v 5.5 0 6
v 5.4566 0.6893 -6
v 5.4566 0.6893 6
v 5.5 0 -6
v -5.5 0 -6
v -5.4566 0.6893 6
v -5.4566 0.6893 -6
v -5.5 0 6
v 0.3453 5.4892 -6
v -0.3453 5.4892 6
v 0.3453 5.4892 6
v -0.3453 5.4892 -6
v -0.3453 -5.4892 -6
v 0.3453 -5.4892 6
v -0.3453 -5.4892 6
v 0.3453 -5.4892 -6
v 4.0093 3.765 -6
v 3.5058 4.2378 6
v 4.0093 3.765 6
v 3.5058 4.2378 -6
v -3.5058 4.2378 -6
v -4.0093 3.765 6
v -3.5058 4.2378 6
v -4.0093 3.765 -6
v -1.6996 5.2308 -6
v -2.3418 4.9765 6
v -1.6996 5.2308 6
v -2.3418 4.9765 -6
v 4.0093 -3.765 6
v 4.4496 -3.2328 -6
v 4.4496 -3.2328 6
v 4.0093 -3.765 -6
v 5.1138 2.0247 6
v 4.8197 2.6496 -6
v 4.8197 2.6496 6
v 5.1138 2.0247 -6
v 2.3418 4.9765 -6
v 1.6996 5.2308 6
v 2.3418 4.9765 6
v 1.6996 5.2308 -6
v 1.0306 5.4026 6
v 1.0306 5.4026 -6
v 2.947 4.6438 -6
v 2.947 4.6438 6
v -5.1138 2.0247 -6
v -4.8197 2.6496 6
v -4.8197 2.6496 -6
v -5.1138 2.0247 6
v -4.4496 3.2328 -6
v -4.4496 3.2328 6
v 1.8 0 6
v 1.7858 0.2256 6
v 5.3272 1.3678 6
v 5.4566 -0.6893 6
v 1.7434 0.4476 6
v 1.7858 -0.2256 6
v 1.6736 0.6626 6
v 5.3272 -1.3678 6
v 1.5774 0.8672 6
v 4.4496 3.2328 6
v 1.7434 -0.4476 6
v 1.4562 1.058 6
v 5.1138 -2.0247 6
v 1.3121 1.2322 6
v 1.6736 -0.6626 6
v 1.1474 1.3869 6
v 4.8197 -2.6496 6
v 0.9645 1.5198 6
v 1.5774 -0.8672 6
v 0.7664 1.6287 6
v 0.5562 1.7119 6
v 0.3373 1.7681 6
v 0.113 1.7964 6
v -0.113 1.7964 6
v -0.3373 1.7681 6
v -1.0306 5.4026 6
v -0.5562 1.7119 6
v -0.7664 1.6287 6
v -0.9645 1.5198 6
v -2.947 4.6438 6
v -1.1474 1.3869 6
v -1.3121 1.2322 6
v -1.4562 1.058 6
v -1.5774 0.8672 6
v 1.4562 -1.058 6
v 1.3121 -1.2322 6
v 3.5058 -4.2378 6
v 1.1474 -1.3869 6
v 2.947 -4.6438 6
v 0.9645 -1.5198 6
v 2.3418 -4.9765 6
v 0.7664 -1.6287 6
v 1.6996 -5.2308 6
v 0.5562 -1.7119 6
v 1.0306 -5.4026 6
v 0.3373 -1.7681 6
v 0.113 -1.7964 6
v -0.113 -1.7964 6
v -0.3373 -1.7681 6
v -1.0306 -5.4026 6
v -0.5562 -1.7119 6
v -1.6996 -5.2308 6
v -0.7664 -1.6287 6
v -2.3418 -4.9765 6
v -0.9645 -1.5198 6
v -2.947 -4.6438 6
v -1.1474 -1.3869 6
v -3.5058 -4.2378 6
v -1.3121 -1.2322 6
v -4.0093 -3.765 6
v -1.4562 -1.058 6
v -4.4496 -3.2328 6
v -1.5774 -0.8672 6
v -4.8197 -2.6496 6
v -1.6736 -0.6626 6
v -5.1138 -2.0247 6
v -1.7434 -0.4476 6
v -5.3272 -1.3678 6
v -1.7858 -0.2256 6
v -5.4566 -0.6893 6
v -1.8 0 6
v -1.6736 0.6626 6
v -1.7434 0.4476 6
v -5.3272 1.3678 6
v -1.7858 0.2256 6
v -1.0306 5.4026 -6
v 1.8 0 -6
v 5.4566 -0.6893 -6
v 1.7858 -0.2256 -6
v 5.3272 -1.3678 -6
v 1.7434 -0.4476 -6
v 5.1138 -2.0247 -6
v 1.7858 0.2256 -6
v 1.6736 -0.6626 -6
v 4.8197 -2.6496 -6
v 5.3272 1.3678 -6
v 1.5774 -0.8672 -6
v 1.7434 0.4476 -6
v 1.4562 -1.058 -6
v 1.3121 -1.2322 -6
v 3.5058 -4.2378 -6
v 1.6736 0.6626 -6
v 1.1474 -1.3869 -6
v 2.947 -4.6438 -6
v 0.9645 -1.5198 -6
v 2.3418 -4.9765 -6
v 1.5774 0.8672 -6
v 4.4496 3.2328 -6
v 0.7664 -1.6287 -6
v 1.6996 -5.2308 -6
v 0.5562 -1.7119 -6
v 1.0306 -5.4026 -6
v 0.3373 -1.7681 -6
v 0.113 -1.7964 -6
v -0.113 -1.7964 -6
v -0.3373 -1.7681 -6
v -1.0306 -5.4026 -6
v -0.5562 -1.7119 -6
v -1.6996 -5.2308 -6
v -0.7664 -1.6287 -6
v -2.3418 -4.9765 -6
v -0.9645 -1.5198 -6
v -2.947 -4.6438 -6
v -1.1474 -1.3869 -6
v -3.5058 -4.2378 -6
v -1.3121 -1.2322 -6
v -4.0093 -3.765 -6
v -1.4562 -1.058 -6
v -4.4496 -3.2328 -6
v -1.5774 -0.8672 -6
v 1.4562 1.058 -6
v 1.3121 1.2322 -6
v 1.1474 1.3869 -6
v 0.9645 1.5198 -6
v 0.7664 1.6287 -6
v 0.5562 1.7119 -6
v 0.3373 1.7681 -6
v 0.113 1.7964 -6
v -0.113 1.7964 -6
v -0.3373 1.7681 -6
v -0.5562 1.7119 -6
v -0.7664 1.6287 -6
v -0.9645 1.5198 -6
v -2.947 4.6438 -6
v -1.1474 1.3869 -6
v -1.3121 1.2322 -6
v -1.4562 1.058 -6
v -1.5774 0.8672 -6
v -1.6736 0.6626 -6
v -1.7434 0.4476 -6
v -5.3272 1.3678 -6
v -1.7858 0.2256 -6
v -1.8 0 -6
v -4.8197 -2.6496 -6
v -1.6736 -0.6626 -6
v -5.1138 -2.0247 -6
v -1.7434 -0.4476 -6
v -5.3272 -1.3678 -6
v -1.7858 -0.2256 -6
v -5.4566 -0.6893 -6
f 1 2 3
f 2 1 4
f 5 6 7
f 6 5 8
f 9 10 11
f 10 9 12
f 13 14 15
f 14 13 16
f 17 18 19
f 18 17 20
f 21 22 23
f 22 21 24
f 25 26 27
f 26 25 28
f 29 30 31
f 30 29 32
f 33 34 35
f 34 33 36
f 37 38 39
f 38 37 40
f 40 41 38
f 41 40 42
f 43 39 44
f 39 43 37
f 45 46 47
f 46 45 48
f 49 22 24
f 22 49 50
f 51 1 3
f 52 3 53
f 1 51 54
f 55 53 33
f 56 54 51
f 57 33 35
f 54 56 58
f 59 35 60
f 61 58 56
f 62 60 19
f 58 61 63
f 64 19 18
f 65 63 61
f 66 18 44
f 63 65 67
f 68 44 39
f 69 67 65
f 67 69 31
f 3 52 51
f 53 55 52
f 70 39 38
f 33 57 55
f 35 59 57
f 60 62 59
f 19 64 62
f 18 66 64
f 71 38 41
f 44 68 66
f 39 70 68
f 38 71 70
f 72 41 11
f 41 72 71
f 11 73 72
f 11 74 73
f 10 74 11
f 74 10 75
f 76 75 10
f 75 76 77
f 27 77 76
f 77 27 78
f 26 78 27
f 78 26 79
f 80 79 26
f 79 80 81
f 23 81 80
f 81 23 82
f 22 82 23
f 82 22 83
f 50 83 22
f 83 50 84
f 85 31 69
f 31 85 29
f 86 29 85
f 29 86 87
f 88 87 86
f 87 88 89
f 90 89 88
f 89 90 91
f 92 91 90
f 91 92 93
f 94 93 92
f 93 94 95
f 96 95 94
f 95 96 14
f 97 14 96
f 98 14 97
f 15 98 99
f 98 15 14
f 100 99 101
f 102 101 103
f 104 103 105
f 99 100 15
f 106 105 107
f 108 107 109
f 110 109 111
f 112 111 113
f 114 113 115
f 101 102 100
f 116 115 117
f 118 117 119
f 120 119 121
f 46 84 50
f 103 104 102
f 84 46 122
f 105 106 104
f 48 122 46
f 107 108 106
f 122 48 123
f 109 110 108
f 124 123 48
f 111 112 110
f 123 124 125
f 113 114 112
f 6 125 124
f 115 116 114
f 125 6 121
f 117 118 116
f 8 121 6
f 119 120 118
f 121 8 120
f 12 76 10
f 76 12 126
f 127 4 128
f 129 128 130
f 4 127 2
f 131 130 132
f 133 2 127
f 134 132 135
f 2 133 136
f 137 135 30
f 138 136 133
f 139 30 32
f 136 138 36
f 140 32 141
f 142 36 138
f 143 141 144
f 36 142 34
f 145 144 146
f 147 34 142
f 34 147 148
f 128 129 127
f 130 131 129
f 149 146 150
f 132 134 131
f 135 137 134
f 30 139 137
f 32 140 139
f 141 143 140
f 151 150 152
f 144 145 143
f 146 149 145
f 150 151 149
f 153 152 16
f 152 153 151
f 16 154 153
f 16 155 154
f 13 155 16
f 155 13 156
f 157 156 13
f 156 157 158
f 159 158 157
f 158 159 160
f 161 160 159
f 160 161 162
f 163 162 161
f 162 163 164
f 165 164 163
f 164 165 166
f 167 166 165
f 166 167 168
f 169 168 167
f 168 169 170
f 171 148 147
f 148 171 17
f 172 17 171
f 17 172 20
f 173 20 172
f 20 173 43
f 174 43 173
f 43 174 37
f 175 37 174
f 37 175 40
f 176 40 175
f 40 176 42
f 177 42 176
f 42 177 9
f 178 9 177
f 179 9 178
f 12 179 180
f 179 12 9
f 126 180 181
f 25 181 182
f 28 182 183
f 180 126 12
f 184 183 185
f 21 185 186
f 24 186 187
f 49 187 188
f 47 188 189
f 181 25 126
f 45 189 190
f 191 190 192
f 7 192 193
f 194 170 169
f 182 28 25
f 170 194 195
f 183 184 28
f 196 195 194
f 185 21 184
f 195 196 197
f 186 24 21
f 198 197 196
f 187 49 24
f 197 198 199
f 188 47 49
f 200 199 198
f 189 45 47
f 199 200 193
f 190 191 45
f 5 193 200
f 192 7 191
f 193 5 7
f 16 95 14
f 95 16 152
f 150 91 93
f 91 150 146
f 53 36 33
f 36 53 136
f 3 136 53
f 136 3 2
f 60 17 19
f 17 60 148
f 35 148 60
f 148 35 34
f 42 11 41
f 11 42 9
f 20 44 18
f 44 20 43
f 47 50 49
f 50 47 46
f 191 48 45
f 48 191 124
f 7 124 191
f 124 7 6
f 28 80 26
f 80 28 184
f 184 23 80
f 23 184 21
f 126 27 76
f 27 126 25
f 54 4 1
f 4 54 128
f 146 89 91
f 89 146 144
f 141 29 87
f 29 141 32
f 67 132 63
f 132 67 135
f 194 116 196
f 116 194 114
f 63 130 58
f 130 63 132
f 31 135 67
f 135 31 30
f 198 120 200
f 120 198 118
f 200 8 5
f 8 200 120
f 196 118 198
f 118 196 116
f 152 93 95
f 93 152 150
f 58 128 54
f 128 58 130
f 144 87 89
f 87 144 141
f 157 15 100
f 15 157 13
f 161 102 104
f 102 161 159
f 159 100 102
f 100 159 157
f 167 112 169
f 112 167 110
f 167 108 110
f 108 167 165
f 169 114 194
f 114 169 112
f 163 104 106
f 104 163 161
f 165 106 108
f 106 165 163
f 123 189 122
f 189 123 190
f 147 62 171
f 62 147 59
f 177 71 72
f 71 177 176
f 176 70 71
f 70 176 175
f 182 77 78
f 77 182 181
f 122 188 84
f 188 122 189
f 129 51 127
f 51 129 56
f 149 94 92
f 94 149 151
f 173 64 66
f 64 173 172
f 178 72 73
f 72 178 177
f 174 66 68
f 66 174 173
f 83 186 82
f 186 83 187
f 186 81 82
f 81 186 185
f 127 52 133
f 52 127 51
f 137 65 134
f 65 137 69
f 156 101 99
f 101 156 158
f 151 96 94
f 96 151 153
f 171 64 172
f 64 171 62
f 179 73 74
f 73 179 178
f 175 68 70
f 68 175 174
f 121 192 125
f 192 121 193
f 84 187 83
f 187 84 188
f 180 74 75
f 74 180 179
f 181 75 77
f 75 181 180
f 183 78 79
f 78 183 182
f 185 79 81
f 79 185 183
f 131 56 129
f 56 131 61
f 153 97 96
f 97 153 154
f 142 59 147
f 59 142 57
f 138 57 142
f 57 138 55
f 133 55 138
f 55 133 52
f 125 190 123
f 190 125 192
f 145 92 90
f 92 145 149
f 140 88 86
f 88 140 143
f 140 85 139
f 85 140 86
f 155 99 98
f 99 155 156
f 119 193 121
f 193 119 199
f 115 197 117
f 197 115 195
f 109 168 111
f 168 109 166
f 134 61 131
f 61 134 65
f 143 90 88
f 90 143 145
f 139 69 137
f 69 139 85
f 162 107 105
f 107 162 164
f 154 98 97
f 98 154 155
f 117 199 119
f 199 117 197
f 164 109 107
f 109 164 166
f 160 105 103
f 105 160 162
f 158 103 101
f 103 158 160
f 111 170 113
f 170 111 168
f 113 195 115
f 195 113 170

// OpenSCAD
$fn = 50;


difference() {
	union() {
		translate(v = [0, 0, -6.0000000000]) {
			cylinder(h = 12, r = 5.5000000000);
		}
	}
	union() {
		translate(v = [0, 0, -100.0000000000]) {
			cylinder(h = 200, r = 1.8000000000);
		}
	}
}
